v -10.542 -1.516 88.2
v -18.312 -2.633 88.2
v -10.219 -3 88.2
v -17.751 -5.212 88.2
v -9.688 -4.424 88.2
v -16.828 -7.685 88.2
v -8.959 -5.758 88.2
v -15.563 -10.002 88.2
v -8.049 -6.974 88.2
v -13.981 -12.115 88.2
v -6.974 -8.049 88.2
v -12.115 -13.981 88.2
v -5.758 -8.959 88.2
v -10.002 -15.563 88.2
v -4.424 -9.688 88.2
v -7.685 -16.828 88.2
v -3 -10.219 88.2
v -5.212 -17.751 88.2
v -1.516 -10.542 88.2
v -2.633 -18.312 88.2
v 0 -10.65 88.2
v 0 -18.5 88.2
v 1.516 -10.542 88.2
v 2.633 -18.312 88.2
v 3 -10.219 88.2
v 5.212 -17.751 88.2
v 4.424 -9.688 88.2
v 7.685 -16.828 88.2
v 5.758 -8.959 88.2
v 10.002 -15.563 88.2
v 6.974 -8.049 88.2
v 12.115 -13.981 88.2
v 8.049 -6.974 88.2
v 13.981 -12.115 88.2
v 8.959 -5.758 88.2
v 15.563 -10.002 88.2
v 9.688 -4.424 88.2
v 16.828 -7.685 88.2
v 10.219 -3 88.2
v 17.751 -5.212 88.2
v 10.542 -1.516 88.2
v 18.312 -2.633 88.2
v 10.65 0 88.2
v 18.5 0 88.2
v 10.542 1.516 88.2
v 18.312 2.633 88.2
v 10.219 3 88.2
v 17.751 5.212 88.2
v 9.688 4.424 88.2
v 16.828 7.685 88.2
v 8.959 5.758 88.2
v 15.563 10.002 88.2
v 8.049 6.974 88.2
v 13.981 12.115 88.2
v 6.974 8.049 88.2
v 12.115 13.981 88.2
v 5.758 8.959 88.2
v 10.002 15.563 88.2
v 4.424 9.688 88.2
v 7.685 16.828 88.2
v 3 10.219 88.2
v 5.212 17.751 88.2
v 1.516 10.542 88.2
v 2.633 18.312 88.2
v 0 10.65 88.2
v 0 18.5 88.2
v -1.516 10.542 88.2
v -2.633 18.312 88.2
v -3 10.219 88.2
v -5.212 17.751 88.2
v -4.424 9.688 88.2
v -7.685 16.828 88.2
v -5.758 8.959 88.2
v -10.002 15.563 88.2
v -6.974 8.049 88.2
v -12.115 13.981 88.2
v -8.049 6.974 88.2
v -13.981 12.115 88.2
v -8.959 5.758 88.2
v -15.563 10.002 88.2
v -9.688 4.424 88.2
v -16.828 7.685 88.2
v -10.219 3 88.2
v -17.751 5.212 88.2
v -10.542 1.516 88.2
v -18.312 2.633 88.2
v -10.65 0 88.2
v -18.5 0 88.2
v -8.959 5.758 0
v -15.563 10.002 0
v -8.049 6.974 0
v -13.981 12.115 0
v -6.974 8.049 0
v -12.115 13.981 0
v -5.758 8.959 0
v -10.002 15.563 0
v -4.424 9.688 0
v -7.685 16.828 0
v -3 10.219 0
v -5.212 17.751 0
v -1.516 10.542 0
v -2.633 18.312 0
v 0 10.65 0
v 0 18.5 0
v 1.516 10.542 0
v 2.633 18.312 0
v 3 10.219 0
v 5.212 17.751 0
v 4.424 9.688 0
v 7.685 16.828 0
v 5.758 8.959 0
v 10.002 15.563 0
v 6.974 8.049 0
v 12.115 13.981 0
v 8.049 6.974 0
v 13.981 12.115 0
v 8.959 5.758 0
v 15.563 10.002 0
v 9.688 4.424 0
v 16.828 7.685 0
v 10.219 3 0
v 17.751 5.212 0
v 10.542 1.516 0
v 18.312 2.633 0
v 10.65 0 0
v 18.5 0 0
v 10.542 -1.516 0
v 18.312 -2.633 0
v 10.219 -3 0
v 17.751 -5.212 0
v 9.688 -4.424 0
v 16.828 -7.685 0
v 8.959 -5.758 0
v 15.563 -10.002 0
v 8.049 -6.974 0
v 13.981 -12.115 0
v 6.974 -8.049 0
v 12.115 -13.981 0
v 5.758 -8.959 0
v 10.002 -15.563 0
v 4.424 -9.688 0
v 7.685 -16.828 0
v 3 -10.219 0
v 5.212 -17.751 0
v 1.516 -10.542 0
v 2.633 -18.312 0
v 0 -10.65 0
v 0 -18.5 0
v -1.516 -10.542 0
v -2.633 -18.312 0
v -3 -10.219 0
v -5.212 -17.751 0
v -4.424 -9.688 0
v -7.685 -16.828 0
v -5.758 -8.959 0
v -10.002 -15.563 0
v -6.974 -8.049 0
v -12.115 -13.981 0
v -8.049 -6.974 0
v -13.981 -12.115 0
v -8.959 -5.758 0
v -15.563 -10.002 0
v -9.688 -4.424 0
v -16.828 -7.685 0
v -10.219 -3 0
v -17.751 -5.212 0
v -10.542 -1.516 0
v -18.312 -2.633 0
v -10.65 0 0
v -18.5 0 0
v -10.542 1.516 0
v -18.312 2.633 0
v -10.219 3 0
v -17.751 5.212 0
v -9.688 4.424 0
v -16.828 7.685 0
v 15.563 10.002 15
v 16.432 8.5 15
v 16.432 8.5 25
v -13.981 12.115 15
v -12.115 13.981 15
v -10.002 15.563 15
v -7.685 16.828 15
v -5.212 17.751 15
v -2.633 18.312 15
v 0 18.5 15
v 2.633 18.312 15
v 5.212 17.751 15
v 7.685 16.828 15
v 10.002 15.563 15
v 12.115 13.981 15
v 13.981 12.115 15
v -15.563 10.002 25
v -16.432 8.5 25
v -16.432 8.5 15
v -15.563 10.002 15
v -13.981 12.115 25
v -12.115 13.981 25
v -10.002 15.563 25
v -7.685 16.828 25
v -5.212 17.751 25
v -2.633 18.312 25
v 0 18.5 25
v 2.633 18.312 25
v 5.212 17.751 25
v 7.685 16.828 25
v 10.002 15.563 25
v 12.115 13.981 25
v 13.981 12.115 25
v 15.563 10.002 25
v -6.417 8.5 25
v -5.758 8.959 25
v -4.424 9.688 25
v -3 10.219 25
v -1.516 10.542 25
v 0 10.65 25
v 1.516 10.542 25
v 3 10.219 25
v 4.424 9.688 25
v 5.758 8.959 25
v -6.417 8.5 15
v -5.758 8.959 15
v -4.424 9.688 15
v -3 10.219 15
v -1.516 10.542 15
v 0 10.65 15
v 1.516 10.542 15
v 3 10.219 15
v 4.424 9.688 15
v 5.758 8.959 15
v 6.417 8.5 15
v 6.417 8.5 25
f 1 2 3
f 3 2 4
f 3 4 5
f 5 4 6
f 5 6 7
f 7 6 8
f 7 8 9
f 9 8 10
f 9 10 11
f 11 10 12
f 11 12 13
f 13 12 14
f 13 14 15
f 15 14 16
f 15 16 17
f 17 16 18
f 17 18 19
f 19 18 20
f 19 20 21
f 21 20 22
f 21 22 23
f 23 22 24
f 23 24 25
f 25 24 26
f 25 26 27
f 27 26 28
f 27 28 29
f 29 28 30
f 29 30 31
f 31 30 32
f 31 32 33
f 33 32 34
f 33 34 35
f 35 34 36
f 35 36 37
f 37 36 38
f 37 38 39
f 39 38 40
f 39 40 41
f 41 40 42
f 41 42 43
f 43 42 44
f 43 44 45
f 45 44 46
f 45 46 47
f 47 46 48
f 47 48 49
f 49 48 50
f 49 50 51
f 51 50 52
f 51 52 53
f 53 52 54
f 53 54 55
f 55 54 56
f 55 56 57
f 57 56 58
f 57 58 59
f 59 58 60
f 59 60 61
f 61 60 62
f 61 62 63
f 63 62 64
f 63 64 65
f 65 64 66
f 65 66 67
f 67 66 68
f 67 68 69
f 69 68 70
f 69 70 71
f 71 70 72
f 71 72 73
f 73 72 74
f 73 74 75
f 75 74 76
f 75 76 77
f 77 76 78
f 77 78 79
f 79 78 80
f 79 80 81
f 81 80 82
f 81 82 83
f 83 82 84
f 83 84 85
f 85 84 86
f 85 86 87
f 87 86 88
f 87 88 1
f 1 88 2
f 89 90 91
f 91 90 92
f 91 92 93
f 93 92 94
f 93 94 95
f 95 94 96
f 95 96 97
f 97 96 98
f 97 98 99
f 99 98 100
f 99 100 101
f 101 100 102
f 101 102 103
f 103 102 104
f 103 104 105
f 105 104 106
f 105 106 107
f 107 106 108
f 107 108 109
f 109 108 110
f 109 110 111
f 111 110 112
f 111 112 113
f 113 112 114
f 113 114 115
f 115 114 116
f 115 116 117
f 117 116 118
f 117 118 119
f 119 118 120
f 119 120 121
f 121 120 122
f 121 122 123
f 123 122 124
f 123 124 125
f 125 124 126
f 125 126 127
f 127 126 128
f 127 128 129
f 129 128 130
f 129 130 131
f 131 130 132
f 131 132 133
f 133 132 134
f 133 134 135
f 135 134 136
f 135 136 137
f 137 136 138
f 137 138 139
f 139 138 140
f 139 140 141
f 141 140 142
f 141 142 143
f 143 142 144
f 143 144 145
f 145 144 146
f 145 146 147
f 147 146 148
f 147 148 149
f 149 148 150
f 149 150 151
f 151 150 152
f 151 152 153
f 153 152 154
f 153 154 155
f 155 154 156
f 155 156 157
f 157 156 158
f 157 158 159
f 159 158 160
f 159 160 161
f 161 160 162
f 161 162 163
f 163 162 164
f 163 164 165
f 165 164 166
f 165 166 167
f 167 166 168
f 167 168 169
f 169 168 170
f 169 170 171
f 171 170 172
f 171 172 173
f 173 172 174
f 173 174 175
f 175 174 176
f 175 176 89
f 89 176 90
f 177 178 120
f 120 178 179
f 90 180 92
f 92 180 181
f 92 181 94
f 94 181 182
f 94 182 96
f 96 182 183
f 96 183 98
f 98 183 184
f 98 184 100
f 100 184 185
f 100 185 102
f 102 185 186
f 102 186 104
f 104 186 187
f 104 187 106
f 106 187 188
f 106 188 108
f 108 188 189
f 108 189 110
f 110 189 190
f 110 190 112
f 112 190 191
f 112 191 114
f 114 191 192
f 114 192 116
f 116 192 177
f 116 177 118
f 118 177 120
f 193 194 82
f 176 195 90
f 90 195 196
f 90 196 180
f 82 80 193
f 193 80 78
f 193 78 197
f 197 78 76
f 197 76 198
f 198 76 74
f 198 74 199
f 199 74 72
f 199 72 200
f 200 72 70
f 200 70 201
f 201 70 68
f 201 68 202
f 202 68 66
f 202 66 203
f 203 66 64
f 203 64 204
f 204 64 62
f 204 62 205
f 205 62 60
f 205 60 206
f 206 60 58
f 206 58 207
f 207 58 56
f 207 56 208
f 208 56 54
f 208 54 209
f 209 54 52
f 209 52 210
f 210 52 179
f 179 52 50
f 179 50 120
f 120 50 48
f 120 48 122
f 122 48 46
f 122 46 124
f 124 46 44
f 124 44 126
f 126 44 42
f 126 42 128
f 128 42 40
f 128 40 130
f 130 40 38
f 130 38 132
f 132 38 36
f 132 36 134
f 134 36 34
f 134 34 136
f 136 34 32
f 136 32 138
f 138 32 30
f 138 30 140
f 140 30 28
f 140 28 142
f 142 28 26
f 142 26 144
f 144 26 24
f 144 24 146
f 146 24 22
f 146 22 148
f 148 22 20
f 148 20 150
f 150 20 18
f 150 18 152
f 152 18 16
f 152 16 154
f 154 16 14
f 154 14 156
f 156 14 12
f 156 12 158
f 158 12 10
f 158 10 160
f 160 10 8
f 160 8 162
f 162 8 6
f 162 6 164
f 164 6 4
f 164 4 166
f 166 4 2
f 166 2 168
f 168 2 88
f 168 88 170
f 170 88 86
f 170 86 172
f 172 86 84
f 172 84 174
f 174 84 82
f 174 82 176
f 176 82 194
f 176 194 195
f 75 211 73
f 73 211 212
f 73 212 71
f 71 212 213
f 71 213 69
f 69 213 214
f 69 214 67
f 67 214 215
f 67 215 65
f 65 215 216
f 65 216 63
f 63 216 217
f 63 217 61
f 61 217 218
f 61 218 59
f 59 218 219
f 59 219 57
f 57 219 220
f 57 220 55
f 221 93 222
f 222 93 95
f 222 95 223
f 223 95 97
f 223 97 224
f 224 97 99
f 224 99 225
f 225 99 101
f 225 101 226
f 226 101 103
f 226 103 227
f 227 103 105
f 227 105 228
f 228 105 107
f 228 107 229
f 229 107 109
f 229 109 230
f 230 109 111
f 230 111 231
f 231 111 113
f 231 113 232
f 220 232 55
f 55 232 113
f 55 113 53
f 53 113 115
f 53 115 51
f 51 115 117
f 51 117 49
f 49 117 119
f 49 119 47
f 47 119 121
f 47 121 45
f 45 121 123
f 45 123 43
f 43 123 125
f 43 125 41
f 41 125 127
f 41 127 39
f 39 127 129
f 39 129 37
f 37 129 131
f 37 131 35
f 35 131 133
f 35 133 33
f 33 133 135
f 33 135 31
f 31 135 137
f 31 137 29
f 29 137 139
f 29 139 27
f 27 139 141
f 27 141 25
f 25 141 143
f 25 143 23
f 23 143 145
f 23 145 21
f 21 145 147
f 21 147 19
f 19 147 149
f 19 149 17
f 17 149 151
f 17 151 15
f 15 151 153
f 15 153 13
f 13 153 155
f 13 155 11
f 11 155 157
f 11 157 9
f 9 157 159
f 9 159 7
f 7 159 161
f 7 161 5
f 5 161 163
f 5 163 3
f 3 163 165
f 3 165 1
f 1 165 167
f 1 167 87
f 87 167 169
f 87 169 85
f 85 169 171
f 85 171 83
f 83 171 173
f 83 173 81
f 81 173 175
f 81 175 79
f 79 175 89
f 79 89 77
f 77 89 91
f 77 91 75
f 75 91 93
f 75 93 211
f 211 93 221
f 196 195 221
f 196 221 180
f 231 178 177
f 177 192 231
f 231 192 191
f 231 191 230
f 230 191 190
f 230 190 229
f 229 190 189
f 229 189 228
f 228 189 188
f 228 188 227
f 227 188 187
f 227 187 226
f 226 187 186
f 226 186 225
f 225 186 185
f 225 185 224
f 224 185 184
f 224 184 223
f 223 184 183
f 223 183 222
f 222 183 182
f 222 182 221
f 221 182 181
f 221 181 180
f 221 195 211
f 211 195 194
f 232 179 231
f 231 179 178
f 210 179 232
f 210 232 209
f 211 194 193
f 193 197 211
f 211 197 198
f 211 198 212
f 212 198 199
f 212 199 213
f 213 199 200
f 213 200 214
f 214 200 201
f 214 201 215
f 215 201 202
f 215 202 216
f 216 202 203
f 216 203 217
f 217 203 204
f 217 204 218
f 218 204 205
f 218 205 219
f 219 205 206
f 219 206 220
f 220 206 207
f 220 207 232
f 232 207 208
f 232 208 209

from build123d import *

# Parameters (mm, degrees)
SKIZZE1_R                            = 18.5
SKIZZE1_R_2                          = 10.65
AUFSATZ_LINEAR_AUSTRAGEN1_DEPTH      = 88.2
SKIZZE2_W                            = 10
SKIZZE2_H                            = 10
SCHNITT_LINEAR_AUSTRAGEN1_DEPTH      = 19.5
SCHNITT_LINEAR_AUSTRAGEN1_DEPTH_BACK = 19.5


with BuildPart() as part:
    # Skizze1 → Aufsatz-Linear austragen1 (new body)
    with BuildSketch(Plane.XY):
        Circle(SKIZZE1_R)
        Circle(SKIZZE1_R_2, mode=Mode.SUBTRACT)
    extrude(amount=AUFSATZ_LINEAR_AUSTRAGEN1_DEPTH)

    # Skizze2 → Schnitt-Linear austragen1 (cut, two sides)
    with BuildSketch(Plane(origin=(0, 0, 0), x_dir=(0, 0, -1), z_dir=(1, 0, 0))) as schnitt_linear_austragen1_sk:
        with Locations((-20, 13.5)):
            Rectangle(SKIZZE2_W, SKIZZE2_H)
    extrude(amount=SCHNITT_LINEAR_AUSTRAGEN1_DEPTH, mode=Mode.SUBTRACT)
    extrude(schnitt_linear_austragen1_sk.sketch, amount=-SCHNITT_LINEAR_AUSTRAGEN1_DEPTH_BACK, mode=Mode.SUBTRACT)


solid = part.part
